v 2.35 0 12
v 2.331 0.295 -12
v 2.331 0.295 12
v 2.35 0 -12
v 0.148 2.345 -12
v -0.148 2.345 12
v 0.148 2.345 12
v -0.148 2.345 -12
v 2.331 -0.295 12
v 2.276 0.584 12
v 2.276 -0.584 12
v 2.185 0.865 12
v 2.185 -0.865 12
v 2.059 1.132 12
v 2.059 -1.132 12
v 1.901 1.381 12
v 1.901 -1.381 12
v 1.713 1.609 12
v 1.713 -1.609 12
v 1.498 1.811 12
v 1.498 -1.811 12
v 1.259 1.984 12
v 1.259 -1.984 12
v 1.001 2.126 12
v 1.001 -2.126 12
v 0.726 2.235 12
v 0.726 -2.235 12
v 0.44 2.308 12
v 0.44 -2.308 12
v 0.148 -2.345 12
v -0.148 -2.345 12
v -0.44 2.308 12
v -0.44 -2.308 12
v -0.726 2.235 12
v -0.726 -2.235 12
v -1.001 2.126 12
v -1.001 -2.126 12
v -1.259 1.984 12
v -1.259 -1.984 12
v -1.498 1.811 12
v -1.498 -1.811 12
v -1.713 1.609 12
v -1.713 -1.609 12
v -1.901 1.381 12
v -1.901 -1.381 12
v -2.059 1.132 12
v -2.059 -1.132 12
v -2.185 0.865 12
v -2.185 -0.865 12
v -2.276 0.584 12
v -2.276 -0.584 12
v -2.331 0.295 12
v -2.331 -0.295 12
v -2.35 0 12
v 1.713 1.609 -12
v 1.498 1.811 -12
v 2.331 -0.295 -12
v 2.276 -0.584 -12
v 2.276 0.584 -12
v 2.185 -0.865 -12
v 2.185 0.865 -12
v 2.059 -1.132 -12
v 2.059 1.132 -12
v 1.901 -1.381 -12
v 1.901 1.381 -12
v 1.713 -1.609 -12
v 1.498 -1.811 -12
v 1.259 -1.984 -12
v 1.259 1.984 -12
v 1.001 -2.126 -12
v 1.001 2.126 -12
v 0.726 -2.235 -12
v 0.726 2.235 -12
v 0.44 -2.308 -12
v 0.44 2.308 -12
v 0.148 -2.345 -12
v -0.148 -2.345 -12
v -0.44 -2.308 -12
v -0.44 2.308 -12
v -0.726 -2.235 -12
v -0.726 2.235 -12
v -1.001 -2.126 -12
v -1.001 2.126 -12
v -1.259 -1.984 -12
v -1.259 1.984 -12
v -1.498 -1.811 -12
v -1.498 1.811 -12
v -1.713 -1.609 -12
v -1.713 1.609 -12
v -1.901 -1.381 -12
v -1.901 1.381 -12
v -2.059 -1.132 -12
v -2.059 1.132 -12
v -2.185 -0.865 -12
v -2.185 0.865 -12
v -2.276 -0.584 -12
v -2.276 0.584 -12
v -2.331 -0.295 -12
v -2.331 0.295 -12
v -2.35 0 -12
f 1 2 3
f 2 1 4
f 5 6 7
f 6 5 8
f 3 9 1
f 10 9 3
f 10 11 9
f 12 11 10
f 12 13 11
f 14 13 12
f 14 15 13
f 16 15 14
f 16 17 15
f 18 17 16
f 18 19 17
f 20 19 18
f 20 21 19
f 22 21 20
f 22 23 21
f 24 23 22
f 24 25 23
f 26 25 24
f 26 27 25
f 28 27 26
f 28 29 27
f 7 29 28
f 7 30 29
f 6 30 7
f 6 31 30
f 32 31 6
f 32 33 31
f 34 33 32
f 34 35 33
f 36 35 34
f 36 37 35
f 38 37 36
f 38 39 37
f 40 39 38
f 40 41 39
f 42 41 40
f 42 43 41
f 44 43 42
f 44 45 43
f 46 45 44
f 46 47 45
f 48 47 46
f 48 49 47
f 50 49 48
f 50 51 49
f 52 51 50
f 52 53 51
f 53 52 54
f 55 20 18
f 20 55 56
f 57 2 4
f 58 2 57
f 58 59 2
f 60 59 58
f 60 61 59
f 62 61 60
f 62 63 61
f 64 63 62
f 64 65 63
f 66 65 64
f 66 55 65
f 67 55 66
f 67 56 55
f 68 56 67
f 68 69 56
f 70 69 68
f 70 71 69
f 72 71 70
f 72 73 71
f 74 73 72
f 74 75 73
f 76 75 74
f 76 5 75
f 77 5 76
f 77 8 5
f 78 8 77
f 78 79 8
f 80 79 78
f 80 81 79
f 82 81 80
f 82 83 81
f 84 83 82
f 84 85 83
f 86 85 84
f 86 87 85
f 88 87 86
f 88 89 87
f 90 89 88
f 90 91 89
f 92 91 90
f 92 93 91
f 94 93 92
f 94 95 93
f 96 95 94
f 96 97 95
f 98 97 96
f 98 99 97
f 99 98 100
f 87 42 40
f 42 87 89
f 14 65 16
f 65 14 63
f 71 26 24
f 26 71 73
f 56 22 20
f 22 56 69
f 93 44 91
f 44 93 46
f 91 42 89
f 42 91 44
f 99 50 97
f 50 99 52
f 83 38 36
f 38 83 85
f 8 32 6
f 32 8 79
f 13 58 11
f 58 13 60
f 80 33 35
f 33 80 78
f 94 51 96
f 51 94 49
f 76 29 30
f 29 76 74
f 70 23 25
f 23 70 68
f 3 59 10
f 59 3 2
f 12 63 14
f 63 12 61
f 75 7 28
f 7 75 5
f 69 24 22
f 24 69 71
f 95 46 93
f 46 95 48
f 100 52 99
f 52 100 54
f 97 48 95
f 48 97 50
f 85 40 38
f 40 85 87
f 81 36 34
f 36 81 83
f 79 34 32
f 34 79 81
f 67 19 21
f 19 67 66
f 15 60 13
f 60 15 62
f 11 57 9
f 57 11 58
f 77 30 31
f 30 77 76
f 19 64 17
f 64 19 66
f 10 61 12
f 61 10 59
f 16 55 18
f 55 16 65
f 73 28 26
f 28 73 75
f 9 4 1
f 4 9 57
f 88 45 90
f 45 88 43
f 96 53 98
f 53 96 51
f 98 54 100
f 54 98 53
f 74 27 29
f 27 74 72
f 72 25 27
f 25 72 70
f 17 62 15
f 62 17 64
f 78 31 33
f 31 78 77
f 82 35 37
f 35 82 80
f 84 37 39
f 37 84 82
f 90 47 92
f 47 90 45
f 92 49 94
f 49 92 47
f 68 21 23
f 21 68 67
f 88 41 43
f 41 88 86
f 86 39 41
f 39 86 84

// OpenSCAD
$fn = 50;


difference() {
	union() {
		translate(v = [0, 0, -12.0000000000]) {
			cylinder(h = 24, r = 2.3500000000);
		}
	}
	union() {
		translate(v = [0, 0, -100.0000000000]) {
			cylinder(h = 200, r = 0);
		}
	}
}
